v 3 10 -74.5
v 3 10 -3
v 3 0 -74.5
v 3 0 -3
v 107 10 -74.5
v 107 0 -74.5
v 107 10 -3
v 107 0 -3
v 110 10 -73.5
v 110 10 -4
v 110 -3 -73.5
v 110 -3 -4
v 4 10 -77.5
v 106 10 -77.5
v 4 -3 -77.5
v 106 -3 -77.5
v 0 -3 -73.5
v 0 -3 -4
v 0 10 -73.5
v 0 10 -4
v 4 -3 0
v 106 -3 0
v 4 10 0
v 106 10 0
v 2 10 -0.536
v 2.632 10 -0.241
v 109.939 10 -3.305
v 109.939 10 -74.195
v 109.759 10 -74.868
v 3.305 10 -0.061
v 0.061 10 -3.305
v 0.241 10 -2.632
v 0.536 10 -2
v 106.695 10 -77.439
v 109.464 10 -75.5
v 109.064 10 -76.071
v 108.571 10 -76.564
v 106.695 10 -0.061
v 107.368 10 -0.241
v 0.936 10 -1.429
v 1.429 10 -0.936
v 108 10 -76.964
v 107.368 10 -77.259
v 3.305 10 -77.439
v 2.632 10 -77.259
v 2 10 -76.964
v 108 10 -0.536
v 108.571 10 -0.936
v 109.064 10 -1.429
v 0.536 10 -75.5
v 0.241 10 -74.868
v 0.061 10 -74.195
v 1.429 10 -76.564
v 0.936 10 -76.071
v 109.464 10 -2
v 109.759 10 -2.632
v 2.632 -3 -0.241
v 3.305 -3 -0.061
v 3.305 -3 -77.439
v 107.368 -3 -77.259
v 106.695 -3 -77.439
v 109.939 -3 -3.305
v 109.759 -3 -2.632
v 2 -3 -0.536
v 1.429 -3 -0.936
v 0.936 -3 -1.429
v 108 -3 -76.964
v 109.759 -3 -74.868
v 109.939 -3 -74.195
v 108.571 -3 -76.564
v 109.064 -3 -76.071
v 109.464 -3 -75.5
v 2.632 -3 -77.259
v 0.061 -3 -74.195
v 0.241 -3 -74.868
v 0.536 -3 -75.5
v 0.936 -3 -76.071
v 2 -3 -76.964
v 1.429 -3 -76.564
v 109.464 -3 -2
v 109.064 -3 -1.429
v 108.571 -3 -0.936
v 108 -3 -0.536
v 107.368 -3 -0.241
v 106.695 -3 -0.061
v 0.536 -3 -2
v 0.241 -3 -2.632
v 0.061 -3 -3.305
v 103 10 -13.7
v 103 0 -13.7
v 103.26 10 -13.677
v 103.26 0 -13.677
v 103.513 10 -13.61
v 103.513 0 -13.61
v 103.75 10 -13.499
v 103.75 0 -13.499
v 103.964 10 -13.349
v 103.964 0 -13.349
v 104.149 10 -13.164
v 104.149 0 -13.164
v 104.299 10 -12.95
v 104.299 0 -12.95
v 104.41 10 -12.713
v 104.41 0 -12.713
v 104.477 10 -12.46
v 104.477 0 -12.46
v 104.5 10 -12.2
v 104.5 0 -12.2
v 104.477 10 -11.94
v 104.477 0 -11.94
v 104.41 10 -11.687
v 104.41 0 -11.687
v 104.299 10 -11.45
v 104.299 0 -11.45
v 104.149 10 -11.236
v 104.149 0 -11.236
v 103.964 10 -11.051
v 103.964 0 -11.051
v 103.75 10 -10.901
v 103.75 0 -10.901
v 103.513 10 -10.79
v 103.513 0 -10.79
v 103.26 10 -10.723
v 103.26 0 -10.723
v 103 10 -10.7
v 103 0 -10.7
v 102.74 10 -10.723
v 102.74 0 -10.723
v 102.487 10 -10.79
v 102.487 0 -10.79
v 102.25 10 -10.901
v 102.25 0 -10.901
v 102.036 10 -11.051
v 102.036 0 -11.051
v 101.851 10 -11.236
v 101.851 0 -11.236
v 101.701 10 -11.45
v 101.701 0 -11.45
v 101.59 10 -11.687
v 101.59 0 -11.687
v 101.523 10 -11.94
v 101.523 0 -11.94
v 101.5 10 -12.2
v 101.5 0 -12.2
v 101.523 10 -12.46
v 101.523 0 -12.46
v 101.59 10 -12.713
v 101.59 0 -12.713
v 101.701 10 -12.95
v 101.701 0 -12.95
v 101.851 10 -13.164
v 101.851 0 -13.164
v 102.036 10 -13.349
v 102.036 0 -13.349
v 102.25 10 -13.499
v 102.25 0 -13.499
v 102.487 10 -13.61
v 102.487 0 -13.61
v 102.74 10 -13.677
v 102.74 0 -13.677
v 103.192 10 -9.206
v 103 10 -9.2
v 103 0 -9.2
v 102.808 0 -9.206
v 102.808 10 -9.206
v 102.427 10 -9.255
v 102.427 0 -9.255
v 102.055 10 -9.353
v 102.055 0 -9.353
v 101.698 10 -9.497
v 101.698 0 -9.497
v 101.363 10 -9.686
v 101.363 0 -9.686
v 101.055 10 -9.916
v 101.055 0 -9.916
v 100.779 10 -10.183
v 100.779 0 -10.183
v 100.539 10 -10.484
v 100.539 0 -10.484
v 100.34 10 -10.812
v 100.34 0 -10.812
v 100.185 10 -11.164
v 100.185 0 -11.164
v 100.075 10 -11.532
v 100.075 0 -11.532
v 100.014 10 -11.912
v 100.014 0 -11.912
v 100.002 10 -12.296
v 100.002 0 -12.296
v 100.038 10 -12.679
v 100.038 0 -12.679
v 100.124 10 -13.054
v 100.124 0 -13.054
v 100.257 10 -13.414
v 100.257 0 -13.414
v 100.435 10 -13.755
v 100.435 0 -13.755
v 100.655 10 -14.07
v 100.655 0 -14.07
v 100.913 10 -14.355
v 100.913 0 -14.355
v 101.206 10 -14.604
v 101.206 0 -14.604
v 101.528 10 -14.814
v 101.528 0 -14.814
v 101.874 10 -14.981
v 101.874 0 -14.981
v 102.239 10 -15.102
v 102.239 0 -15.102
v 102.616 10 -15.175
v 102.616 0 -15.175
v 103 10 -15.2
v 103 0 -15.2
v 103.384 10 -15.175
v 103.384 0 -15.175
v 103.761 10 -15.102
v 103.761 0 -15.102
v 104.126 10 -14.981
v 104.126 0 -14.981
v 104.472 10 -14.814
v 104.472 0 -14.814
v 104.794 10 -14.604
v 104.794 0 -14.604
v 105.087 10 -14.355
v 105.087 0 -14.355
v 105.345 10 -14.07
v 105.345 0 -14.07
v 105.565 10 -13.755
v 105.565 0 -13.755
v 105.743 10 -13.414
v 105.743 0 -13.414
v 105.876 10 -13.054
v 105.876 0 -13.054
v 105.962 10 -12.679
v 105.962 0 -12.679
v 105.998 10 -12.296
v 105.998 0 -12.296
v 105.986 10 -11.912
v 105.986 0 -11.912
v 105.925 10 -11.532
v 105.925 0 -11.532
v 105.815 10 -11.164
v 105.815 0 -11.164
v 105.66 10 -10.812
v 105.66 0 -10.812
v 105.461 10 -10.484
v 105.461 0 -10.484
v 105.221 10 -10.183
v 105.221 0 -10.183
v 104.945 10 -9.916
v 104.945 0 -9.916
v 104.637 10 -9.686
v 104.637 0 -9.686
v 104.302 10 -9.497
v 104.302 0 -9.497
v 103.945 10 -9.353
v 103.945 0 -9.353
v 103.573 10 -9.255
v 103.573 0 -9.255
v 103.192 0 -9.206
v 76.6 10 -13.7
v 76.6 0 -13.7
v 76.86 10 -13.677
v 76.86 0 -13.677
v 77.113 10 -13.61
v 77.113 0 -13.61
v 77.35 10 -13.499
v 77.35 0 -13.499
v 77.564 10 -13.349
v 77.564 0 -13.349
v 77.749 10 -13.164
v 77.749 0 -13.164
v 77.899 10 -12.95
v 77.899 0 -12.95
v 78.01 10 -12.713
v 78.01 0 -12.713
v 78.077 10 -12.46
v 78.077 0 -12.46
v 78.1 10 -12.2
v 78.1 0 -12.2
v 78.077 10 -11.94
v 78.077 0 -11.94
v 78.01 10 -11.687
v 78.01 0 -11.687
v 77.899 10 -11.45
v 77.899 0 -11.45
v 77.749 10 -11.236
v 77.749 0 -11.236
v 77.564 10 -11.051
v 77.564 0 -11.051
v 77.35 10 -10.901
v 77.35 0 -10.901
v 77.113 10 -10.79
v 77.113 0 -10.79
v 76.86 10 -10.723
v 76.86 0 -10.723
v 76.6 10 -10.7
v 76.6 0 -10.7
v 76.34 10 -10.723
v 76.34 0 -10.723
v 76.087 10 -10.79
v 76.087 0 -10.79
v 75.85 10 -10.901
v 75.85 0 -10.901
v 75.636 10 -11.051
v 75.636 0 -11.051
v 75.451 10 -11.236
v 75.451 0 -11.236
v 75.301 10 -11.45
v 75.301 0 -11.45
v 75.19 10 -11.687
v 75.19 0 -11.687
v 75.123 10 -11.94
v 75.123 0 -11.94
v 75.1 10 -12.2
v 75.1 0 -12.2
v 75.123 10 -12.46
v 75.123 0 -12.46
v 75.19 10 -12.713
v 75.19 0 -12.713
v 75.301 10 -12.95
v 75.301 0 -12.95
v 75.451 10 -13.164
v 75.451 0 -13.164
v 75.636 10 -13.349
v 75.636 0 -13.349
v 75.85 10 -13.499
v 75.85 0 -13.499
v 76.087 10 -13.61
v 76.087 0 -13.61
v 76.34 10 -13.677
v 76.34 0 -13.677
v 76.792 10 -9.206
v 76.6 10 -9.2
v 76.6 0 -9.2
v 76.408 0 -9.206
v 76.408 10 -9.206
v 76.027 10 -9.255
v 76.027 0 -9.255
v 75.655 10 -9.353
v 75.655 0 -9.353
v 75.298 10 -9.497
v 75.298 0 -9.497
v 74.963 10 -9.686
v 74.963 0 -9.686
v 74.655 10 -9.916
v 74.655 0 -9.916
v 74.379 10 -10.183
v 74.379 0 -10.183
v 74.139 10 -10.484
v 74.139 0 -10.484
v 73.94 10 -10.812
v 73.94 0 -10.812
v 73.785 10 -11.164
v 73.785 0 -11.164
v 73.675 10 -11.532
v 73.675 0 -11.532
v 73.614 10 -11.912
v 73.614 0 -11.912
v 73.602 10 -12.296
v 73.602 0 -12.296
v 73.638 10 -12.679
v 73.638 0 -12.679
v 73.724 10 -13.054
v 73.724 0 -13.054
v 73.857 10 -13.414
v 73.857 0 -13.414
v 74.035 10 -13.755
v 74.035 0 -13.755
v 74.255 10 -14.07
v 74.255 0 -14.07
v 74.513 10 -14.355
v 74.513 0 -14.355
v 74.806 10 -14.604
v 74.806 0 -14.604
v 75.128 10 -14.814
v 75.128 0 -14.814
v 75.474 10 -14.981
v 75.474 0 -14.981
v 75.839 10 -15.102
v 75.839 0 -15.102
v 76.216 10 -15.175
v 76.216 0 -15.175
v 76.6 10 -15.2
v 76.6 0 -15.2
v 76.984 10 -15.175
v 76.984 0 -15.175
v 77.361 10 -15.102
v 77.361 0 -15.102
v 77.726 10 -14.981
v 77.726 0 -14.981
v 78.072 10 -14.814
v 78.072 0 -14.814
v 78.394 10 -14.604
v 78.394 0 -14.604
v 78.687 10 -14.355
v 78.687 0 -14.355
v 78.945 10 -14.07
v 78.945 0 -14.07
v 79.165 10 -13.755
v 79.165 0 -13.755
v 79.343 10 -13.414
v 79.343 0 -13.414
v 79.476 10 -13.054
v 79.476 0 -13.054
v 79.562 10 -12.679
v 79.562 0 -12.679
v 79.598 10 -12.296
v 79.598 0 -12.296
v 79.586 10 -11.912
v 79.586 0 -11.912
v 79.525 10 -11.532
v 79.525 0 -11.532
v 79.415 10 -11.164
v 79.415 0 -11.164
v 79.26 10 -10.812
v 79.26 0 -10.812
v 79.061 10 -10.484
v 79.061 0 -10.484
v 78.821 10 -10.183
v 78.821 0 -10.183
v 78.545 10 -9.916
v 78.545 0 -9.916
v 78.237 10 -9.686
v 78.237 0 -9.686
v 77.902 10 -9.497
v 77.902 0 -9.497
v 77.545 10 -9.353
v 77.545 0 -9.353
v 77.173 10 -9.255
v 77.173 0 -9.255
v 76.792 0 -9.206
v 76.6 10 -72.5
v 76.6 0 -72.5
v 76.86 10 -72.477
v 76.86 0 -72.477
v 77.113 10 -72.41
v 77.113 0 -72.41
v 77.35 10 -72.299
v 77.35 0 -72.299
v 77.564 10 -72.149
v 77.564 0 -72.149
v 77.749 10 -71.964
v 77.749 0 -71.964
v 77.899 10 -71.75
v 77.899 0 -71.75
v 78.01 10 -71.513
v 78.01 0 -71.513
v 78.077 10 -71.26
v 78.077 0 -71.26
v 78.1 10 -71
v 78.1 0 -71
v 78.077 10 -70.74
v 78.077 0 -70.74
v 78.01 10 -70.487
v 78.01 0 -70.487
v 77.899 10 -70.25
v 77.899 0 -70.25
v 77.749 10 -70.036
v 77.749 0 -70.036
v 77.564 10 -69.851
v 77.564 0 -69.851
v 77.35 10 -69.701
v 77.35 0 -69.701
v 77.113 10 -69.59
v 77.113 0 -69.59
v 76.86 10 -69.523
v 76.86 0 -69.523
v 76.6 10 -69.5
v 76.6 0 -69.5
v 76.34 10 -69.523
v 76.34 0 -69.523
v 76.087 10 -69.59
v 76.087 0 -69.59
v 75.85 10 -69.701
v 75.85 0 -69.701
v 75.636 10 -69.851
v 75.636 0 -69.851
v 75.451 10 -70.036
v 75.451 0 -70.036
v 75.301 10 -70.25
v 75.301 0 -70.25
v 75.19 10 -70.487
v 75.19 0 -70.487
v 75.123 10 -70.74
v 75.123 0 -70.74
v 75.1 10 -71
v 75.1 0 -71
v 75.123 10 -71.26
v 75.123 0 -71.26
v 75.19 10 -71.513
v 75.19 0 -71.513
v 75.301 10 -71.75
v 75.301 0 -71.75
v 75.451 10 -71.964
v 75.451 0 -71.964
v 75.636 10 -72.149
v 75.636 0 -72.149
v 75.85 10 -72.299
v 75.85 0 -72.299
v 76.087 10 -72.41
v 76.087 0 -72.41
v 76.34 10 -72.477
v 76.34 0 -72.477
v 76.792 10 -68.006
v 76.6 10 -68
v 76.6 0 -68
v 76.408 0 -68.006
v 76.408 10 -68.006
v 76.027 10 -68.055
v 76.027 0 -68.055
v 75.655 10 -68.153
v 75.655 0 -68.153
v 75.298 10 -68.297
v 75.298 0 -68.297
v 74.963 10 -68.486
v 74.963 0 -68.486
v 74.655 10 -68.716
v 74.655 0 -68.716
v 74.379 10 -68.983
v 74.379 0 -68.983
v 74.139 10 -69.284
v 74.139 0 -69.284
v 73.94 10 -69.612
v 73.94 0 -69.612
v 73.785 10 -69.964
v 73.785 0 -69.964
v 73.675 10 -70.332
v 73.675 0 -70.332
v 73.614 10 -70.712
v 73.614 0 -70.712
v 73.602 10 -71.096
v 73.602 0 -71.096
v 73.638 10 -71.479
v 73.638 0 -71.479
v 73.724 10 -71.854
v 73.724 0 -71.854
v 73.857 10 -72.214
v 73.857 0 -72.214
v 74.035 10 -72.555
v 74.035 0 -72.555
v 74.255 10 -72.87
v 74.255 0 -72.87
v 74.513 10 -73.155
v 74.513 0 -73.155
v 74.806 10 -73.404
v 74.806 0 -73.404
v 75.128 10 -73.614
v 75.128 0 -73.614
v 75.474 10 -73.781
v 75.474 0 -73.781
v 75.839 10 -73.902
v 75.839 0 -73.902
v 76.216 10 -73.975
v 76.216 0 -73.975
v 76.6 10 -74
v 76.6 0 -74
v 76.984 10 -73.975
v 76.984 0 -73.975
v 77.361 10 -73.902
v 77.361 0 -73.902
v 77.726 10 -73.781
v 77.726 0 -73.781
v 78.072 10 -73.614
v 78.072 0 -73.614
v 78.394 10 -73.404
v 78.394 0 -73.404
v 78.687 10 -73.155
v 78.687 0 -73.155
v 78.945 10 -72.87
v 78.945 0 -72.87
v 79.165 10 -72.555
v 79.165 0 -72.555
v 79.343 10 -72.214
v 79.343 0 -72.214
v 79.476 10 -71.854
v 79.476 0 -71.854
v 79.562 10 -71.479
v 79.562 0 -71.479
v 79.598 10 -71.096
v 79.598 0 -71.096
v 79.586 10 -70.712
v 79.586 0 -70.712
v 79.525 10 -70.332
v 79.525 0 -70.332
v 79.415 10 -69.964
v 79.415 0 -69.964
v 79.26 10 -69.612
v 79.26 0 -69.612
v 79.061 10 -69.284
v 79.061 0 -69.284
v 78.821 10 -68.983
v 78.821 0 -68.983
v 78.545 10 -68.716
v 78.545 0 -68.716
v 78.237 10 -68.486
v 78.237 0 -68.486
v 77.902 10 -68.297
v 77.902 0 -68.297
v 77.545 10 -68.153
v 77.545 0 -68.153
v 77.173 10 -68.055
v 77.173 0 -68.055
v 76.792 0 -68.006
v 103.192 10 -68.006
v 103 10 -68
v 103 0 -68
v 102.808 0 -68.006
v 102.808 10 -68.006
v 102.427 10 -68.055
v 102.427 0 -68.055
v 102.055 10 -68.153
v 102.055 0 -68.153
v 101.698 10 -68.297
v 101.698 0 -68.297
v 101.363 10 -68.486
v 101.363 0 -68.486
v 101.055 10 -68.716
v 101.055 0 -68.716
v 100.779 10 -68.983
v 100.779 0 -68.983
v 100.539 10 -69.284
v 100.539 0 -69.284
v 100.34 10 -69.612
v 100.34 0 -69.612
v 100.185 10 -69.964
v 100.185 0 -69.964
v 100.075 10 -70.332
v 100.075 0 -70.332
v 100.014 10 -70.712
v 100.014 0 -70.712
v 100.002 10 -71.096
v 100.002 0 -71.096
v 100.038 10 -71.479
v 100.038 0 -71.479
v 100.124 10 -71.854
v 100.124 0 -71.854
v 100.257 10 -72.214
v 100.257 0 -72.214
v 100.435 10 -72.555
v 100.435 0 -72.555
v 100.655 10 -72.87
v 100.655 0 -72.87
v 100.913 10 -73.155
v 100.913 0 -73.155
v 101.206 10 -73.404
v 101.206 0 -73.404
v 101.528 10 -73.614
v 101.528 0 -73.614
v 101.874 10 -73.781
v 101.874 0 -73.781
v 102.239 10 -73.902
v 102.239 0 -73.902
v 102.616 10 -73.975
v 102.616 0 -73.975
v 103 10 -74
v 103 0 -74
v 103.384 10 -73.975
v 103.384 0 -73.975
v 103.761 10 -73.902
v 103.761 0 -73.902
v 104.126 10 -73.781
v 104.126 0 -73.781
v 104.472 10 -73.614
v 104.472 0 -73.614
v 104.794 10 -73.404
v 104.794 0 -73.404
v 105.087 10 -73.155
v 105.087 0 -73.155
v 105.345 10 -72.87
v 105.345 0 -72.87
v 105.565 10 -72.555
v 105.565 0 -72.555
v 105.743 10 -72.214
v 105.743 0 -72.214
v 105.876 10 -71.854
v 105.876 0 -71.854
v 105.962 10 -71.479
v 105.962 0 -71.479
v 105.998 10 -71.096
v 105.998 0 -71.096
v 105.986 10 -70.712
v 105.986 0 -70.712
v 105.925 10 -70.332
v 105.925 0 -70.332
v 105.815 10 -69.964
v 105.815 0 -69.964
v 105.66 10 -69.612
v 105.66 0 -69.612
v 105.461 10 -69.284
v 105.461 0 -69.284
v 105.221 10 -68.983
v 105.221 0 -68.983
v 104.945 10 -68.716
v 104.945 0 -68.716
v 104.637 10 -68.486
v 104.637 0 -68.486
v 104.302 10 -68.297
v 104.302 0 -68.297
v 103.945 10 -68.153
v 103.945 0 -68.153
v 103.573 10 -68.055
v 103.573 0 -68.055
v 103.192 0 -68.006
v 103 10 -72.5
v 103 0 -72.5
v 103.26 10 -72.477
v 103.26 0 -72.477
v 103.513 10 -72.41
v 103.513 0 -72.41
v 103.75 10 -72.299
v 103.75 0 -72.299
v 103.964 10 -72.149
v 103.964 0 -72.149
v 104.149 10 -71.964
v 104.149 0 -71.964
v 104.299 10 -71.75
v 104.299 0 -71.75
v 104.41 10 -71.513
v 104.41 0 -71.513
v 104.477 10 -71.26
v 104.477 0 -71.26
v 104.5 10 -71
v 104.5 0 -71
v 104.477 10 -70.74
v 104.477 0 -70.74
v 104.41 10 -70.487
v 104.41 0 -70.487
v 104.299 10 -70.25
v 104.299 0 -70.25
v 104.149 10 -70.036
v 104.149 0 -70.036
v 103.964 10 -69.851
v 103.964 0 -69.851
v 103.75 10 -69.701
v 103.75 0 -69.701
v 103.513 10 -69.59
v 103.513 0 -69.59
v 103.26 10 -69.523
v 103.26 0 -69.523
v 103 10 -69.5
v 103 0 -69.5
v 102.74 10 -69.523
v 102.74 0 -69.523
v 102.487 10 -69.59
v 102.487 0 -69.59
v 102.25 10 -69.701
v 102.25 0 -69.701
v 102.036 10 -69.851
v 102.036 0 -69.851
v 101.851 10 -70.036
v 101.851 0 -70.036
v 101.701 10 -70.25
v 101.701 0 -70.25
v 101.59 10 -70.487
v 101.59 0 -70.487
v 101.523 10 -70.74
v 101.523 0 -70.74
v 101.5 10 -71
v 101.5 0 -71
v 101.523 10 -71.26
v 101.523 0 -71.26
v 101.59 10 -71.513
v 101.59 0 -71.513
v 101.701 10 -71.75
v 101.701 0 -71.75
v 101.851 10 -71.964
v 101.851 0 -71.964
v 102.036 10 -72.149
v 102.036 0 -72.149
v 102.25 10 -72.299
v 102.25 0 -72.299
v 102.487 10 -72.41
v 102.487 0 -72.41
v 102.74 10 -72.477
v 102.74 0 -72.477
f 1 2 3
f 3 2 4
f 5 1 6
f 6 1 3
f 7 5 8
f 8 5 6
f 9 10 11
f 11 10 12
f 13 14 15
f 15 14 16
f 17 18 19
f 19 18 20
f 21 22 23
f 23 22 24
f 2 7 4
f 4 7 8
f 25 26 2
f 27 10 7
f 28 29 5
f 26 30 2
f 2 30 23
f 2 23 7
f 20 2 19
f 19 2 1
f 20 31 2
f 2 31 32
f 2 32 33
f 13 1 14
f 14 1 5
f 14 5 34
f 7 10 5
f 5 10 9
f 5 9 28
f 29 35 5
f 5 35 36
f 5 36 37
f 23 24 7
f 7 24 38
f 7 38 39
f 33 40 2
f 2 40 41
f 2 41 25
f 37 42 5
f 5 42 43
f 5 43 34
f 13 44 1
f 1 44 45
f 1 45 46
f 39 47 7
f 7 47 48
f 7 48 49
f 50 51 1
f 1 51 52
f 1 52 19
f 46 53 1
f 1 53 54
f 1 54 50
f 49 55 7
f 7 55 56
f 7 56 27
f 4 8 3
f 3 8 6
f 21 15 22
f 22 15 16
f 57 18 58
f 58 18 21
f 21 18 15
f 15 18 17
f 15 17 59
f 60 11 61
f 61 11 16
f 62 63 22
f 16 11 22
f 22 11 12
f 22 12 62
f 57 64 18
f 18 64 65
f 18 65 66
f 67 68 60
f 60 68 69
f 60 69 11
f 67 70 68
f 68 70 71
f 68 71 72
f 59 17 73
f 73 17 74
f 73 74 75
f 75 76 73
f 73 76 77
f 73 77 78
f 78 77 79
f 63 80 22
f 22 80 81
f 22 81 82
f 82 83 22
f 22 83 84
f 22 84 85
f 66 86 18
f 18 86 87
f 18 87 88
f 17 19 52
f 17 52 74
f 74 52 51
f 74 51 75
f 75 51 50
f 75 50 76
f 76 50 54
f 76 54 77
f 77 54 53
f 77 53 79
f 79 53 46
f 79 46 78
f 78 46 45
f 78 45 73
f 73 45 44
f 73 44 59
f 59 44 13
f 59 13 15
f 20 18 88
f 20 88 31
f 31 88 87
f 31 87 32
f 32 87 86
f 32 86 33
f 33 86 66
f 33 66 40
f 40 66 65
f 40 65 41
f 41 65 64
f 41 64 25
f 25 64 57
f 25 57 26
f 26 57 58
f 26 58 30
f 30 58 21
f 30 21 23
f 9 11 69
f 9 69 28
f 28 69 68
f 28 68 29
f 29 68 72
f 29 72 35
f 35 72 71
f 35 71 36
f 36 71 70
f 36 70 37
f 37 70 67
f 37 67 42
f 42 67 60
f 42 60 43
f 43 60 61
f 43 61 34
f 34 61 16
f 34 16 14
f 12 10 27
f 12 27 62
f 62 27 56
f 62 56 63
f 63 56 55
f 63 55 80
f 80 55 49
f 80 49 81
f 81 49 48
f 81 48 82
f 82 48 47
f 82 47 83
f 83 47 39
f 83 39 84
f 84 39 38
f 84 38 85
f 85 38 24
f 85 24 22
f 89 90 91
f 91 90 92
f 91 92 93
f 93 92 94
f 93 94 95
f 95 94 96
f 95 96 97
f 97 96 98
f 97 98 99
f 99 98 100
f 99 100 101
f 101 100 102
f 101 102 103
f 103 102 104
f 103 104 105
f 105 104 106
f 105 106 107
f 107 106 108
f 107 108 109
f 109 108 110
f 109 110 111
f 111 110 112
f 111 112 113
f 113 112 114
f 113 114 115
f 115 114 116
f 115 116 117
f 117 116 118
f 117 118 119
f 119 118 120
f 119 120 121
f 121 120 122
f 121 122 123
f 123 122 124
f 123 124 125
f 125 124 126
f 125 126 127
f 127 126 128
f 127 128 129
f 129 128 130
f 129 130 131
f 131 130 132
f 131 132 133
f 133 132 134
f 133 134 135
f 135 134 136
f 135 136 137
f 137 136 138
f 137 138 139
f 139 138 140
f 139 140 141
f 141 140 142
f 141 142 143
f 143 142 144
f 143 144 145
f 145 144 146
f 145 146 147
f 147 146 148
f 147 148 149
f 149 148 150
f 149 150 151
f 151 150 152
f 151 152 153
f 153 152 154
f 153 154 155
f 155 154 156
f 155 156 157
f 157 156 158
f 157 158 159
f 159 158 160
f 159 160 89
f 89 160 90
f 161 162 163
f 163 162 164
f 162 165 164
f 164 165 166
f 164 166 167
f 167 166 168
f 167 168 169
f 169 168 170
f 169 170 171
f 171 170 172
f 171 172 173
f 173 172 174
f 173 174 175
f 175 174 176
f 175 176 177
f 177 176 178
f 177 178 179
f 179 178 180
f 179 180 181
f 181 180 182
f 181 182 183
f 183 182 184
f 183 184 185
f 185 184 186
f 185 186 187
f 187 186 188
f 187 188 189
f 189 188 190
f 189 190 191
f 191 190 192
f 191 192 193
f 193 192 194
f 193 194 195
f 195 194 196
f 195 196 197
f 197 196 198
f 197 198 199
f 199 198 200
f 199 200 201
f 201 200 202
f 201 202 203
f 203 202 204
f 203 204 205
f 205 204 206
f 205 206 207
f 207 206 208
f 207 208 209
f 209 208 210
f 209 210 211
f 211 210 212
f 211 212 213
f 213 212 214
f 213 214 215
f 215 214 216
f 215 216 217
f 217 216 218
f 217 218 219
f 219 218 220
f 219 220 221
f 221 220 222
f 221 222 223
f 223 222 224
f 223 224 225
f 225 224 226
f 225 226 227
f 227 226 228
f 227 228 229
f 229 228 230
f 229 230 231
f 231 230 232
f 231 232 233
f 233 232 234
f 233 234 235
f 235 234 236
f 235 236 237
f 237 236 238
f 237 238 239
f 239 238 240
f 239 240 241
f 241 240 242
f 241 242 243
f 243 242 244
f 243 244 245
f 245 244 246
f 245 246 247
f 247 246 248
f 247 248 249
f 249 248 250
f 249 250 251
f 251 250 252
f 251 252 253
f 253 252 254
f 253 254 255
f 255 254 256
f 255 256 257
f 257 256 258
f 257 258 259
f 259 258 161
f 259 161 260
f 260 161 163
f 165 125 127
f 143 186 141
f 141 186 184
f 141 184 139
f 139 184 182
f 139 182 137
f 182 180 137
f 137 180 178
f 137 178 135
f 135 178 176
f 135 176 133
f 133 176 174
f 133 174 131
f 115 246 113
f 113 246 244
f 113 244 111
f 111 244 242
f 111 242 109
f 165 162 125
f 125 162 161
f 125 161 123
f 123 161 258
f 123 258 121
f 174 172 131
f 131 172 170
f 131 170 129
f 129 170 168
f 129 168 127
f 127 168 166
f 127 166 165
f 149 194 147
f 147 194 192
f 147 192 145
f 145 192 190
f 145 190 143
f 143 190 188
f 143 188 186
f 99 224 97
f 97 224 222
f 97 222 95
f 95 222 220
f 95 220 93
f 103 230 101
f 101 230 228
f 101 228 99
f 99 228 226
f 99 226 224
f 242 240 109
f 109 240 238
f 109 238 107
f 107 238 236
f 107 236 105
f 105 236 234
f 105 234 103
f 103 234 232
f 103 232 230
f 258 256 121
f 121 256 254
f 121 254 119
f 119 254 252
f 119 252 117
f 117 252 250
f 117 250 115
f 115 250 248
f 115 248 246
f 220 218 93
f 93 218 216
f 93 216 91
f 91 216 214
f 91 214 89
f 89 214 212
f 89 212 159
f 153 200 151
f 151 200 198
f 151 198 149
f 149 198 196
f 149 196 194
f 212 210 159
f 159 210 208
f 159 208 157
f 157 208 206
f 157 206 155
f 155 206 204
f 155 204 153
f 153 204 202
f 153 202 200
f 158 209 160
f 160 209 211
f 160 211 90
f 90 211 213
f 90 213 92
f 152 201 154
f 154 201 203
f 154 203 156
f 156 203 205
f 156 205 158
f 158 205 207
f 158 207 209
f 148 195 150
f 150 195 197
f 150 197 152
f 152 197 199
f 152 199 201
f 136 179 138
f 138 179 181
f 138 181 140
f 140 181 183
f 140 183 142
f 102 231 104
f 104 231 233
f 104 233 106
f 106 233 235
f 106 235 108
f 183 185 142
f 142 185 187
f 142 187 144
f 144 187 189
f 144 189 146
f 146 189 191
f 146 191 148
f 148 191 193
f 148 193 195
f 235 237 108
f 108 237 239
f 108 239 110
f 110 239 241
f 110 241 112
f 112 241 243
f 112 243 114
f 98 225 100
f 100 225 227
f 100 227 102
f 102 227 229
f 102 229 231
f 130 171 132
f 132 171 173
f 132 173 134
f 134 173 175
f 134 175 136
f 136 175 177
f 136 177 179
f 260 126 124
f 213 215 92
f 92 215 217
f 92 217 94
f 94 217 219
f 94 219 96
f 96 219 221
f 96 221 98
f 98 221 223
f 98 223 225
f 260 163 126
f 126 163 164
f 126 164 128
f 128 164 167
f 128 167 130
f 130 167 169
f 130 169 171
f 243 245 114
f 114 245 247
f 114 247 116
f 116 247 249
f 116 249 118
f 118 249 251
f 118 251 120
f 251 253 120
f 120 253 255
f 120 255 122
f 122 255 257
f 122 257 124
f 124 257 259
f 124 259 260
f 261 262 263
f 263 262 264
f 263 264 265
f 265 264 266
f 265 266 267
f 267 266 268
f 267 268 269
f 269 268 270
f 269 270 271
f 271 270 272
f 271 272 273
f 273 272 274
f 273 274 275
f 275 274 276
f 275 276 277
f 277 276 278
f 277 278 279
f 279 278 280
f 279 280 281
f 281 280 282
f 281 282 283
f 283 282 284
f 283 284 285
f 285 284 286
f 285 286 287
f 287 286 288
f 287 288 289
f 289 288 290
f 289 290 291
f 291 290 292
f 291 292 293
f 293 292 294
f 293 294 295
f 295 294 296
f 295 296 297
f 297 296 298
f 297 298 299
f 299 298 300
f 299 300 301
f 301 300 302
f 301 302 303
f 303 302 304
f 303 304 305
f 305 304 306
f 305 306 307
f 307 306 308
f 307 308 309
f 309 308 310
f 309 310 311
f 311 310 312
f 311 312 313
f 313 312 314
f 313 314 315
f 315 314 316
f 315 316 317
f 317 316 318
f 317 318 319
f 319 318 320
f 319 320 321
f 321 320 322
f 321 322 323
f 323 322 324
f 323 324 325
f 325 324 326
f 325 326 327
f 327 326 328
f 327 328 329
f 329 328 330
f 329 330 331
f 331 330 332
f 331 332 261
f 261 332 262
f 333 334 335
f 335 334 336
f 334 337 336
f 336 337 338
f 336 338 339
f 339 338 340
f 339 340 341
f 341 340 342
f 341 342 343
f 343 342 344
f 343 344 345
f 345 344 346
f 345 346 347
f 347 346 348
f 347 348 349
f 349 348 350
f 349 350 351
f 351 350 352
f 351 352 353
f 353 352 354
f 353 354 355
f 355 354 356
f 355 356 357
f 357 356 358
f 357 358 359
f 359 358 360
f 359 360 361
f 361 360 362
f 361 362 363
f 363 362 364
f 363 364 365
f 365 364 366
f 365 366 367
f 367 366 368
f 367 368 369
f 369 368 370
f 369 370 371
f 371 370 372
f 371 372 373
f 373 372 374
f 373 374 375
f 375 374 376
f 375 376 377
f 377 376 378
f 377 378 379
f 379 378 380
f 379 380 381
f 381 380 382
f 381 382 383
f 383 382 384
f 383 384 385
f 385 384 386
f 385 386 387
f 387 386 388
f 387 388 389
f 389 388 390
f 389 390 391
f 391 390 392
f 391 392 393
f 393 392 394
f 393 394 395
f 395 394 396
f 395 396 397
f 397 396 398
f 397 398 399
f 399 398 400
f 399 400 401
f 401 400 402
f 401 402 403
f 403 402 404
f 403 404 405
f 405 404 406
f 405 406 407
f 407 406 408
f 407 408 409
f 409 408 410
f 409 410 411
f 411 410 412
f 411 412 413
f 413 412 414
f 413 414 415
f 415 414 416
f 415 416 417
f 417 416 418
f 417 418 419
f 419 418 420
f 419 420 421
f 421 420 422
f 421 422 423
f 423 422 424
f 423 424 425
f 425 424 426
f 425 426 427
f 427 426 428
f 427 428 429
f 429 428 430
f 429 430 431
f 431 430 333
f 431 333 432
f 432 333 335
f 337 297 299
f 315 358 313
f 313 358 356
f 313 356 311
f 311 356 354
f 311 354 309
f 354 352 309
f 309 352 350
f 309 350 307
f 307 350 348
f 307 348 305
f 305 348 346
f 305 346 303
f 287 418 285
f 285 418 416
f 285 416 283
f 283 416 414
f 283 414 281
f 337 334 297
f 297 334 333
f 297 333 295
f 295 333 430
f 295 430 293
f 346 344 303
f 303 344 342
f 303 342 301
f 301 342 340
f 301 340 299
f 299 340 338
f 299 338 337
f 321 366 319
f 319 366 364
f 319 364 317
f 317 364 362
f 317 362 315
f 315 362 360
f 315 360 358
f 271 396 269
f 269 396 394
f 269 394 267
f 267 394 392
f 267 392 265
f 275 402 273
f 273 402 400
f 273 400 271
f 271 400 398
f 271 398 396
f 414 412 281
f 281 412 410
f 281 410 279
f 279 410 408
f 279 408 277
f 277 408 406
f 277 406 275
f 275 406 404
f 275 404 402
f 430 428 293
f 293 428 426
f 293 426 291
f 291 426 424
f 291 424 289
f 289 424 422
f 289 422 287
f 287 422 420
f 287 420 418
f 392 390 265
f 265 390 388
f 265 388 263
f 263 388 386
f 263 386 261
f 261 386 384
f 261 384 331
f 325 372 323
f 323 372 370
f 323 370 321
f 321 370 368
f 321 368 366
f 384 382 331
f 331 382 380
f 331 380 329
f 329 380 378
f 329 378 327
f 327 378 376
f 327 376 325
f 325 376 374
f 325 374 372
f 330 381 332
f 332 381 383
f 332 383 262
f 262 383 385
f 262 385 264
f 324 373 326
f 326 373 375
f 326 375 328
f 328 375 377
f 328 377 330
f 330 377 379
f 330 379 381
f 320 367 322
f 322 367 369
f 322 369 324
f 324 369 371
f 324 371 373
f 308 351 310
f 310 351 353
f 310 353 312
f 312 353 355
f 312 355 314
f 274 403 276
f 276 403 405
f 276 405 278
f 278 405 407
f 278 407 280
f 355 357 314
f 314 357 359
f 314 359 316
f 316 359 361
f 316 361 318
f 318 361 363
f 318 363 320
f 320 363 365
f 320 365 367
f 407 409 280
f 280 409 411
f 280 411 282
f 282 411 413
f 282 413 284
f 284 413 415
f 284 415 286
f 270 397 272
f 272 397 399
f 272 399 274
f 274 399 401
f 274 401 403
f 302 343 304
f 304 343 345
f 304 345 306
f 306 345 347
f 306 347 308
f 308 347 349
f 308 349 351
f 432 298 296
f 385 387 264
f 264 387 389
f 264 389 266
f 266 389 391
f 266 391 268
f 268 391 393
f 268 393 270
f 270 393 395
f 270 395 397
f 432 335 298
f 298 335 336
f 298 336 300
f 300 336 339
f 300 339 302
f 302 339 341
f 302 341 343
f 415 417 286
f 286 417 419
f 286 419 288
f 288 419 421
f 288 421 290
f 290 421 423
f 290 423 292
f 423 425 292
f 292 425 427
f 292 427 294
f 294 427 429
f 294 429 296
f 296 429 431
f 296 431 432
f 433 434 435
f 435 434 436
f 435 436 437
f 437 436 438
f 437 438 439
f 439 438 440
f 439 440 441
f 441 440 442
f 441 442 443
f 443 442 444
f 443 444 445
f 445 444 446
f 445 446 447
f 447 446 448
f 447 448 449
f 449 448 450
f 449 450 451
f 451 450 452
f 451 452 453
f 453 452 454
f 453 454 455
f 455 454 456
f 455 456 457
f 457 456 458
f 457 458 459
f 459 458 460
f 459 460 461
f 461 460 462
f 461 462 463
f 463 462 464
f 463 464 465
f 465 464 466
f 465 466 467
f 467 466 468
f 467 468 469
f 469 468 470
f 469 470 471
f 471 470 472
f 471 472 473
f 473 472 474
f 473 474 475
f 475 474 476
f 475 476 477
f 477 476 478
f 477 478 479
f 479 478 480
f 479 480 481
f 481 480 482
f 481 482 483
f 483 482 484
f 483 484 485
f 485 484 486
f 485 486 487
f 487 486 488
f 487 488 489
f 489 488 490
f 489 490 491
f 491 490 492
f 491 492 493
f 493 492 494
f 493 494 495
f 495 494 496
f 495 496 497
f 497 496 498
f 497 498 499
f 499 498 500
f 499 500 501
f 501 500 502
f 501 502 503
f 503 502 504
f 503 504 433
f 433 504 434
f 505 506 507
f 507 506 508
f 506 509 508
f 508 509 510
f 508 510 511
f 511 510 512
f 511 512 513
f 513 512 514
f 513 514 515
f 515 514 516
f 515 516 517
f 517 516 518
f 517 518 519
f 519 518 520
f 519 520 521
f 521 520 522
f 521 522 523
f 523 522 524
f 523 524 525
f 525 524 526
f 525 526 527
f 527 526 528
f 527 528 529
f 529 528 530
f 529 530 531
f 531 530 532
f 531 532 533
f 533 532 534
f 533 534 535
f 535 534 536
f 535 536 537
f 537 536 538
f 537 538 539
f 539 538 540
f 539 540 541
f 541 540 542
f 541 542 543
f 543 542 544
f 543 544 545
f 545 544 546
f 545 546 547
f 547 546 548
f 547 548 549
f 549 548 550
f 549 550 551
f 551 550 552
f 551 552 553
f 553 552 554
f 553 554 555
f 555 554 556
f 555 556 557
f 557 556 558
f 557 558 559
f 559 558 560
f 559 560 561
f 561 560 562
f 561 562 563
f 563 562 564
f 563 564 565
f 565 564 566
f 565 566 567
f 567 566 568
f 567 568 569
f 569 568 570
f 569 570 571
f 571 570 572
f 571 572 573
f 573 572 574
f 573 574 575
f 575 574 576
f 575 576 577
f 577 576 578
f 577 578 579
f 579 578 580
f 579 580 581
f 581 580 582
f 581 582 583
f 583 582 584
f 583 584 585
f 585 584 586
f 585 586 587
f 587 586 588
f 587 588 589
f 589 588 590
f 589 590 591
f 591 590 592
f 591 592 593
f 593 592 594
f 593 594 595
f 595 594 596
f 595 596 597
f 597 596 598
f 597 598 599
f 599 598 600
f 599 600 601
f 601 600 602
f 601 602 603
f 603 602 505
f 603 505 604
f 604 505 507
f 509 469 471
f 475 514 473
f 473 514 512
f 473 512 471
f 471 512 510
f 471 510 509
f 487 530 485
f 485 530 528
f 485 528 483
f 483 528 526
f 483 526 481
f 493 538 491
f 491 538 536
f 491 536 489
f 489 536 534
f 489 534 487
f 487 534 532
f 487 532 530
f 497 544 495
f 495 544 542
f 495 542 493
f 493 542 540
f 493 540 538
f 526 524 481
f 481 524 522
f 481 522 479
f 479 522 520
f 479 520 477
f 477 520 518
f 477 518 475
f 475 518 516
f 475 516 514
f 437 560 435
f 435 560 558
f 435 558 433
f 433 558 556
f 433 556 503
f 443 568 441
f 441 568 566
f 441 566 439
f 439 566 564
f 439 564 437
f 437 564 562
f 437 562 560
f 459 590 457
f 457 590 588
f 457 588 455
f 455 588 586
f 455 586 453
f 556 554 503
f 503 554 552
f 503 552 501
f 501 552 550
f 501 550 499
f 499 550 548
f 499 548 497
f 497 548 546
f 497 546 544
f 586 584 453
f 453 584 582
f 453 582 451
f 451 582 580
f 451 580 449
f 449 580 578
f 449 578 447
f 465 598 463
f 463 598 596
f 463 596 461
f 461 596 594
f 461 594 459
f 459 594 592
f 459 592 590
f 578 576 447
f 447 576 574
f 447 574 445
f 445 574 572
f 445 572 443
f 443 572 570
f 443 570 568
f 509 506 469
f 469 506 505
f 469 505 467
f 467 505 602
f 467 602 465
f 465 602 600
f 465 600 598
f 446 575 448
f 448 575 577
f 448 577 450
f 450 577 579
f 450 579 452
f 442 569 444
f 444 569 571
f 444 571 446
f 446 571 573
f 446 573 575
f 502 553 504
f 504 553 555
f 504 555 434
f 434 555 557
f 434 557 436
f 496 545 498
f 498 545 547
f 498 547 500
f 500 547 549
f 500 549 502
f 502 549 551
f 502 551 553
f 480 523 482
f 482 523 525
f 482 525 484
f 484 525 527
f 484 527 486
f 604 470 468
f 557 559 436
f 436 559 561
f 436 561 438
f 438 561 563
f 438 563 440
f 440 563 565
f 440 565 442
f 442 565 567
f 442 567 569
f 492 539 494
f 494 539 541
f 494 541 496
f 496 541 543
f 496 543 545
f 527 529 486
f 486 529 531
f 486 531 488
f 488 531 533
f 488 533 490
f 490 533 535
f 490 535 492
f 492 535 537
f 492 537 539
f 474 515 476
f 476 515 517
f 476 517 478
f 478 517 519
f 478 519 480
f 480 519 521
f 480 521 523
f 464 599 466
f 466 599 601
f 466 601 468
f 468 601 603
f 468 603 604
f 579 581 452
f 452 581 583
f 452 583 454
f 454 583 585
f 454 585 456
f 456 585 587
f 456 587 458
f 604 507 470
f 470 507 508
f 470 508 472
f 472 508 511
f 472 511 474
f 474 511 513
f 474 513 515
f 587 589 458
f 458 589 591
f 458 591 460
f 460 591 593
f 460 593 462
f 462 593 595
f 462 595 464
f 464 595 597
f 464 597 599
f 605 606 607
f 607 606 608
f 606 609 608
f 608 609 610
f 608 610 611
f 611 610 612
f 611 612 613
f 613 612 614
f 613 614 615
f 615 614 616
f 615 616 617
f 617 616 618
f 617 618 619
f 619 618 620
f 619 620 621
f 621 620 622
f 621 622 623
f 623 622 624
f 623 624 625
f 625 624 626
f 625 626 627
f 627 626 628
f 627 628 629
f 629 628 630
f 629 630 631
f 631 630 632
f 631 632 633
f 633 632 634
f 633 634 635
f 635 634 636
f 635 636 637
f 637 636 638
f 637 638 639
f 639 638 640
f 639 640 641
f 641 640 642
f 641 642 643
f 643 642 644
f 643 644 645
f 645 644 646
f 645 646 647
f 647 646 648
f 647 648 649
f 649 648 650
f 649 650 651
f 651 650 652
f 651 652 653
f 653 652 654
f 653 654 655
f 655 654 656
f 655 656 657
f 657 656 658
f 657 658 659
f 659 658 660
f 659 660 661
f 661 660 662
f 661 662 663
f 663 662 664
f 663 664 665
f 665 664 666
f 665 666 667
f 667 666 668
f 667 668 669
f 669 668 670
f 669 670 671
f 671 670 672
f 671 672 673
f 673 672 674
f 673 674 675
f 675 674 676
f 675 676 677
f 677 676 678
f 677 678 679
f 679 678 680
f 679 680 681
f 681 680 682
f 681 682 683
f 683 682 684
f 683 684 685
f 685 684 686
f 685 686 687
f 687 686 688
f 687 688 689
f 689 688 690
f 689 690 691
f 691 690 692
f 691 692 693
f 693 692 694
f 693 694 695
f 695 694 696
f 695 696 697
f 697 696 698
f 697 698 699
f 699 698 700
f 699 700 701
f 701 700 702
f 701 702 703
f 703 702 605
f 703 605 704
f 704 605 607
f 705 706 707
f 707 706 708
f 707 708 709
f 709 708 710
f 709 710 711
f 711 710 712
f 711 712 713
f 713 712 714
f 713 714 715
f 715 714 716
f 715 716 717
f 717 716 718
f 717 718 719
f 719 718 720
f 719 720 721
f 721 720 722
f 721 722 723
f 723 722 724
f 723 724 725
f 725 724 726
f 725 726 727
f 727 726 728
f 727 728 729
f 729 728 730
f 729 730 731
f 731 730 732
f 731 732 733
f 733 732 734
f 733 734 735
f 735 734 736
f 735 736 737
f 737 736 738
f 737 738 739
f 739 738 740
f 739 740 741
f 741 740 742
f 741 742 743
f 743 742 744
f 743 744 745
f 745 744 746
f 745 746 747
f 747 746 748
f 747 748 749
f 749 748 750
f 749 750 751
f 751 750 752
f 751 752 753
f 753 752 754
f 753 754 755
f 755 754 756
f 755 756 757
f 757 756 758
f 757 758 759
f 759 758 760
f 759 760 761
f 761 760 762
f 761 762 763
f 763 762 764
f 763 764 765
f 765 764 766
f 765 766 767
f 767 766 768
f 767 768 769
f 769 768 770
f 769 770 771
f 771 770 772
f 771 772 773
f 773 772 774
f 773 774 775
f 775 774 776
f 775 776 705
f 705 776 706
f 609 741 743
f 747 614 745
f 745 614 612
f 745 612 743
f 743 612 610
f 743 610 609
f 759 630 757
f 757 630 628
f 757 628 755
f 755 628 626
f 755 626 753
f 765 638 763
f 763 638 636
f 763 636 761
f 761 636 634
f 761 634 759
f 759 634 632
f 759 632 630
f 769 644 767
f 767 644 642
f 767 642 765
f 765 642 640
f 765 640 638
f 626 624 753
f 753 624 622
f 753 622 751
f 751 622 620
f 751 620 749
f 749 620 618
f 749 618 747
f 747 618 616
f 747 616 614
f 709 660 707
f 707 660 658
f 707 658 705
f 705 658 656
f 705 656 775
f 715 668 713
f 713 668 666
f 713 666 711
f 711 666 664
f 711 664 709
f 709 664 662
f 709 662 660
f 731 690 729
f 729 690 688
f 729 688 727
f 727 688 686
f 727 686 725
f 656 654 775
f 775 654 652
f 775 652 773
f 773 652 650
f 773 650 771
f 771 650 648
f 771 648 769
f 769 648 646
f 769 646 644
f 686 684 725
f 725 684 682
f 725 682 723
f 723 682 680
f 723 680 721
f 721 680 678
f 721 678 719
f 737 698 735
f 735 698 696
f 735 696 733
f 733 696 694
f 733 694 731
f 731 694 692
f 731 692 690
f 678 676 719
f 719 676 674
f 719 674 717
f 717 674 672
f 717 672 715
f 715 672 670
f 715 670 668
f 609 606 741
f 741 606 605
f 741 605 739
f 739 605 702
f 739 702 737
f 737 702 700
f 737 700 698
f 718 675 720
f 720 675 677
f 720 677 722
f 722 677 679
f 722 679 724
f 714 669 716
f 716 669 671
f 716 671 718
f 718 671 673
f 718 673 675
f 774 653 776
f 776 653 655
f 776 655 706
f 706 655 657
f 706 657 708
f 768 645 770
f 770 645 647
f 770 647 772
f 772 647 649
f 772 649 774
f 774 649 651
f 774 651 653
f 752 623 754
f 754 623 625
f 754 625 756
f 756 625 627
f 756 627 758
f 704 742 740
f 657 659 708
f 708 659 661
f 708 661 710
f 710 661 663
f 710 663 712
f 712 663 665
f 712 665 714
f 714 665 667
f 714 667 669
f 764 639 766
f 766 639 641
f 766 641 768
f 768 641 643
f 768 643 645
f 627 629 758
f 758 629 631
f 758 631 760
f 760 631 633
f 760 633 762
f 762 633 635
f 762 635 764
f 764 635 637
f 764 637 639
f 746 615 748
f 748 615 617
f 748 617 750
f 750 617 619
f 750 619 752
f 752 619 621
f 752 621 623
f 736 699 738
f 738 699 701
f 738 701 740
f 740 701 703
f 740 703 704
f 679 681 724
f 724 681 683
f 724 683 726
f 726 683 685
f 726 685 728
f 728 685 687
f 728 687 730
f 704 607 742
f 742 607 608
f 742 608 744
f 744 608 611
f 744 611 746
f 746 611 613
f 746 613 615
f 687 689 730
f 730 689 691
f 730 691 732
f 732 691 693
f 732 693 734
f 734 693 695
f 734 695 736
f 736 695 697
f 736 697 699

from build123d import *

# Parameters (mm, degrees)
SKETCH1_W             = 110
SKETCH1_H             = 77.5
SKETCH1_W_2           = 104
SKETCH1_H_2           = 71.5
BOSS_EXTRUDE1_DEPTH   = 10
SKETCH1_R             = 3
SKETCH1_R_2           = 1.5
BOSS_EXTRUDE1_2_DEPTH = 10
BOSS_EXTRUDE1_3_DEPTH = 10
BOSS_EXTRUDE1_4_DEPTH = 10
BOSS_EXTRUDE1_5_DEPTH = 10
SKETCH1_2_W           = 110
SKETCH1_2_H           = 77.5
BOSS_EXTRUDE2_DEPTH   = 3
FILLET1_R             = 4


with BuildPart() as part:
    # Sketch1 → Boss-Extrude1 (new body)
    with BuildSketch(Plane(origin=(0, 0, 0), x_dir=(1, 0, 0), z_dir=(0, 1, 0))):
        with Locations((55, 38.75)):
            Rectangle(SKETCH1_W, SKETCH1_H)
        with Locations((55, 38.75)):
            Rectangle(SKETCH1_W_2, SKETCH1_H_2, mode=Mode.SUBTRACT)
    extrude(amount=BOSS_EXTRUDE1_DEPTH)

    # Sketch1<2> → Boss-Extrude2 (add)
    with BuildSketch(Plane(origin=(0, 0, 0), x_dir=(1, 0, 0), z_dir=(0, 1, 0))):
        with Locations((55, 38.75)):
            Rectangle(SKETCH1_2_W, SKETCH1_2_H)
    extrude(amount=-BOSS_EXTRUDE2_DEPTH)

    # Fillet1
    fillet1_edges = [part.edges().sort_by_distance(p)[0] for p in [
        (0, 3.5, -77.5),
        (0, 3.5, 0),
        (110, 3.5, -77.5),
        (110, 3.5, 0),
    ]]
    fillet(fillet1_edges, radius=FILLET1_R)


with BuildPart() as body_2:
    # Sketch1 → Boss-Extrude1 2 (new body)
    with BuildSketch(Plane(origin=(0, 0, 0), x_dir=(1, 0, 0), z_dir=(0, 1, 0))):
        with Locations((76.6, 12.2)):
            Circle(SKETCH1_R)
        with Locations((76.6, 12.2)):
            Circle(SKETCH1_R_2, mode=Mode.SUBTRACT)
    extrude(amount=BOSS_EXTRUDE1_2_DEPTH)


with BuildPart() as body_3:
    # Sketch1 → Boss-Extrude1 3 (new body)
    with BuildSketch(Plane(origin=(0, 0, 0), x_dir=(1, 0, 0), z_dir=(0, 1, 0))):
        with Locations((103, 12.2)):
            Circle(SKETCH1_R)
        with Locations((103, 12.2)):
            Circle(SKETCH1_R_2, mode=Mode.SUBTRACT)
    extrude(amount=BOSS_EXTRUDE1_3_DEPTH)


with BuildPart() as body_4:
    # Sketch1 → Boss-Extrude1 4 (new body)
    with BuildSketch(Plane(origin=(0, 0, 0), x_dir=(1, 0, 0), z_dir=(0, 1, 0))):
        with Locations((103, 71)):
            Circle(SKETCH1_R)
        with Locations((103, 71)):
            Circle(SKETCH1_R_2, mode=Mode.SUBTRACT)
    extrude(amount=BOSS_EXTRUDE1_4_DEPTH)


with BuildPart() as body_5:
    # Sketch1 → Boss-Extrude1 5 (new body)
    with BuildSketch(Plane(origin=(0, 0, 0), x_dir=(1, 0, 0), z_dir=(0, 1, 0))):
        with Locations((76.6, 71)):
            Circle(SKETCH1_R)
        with Locations((76.6, 71)):
            Circle(SKETCH1_R_2, mode=Mode.SUBTRACT)
    extrude(amount=BOSS_EXTRUDE1_5_DEPTH)


solid = Compound([part.part, body_2.part, body_3.part, body_4.part, body_5.part])
